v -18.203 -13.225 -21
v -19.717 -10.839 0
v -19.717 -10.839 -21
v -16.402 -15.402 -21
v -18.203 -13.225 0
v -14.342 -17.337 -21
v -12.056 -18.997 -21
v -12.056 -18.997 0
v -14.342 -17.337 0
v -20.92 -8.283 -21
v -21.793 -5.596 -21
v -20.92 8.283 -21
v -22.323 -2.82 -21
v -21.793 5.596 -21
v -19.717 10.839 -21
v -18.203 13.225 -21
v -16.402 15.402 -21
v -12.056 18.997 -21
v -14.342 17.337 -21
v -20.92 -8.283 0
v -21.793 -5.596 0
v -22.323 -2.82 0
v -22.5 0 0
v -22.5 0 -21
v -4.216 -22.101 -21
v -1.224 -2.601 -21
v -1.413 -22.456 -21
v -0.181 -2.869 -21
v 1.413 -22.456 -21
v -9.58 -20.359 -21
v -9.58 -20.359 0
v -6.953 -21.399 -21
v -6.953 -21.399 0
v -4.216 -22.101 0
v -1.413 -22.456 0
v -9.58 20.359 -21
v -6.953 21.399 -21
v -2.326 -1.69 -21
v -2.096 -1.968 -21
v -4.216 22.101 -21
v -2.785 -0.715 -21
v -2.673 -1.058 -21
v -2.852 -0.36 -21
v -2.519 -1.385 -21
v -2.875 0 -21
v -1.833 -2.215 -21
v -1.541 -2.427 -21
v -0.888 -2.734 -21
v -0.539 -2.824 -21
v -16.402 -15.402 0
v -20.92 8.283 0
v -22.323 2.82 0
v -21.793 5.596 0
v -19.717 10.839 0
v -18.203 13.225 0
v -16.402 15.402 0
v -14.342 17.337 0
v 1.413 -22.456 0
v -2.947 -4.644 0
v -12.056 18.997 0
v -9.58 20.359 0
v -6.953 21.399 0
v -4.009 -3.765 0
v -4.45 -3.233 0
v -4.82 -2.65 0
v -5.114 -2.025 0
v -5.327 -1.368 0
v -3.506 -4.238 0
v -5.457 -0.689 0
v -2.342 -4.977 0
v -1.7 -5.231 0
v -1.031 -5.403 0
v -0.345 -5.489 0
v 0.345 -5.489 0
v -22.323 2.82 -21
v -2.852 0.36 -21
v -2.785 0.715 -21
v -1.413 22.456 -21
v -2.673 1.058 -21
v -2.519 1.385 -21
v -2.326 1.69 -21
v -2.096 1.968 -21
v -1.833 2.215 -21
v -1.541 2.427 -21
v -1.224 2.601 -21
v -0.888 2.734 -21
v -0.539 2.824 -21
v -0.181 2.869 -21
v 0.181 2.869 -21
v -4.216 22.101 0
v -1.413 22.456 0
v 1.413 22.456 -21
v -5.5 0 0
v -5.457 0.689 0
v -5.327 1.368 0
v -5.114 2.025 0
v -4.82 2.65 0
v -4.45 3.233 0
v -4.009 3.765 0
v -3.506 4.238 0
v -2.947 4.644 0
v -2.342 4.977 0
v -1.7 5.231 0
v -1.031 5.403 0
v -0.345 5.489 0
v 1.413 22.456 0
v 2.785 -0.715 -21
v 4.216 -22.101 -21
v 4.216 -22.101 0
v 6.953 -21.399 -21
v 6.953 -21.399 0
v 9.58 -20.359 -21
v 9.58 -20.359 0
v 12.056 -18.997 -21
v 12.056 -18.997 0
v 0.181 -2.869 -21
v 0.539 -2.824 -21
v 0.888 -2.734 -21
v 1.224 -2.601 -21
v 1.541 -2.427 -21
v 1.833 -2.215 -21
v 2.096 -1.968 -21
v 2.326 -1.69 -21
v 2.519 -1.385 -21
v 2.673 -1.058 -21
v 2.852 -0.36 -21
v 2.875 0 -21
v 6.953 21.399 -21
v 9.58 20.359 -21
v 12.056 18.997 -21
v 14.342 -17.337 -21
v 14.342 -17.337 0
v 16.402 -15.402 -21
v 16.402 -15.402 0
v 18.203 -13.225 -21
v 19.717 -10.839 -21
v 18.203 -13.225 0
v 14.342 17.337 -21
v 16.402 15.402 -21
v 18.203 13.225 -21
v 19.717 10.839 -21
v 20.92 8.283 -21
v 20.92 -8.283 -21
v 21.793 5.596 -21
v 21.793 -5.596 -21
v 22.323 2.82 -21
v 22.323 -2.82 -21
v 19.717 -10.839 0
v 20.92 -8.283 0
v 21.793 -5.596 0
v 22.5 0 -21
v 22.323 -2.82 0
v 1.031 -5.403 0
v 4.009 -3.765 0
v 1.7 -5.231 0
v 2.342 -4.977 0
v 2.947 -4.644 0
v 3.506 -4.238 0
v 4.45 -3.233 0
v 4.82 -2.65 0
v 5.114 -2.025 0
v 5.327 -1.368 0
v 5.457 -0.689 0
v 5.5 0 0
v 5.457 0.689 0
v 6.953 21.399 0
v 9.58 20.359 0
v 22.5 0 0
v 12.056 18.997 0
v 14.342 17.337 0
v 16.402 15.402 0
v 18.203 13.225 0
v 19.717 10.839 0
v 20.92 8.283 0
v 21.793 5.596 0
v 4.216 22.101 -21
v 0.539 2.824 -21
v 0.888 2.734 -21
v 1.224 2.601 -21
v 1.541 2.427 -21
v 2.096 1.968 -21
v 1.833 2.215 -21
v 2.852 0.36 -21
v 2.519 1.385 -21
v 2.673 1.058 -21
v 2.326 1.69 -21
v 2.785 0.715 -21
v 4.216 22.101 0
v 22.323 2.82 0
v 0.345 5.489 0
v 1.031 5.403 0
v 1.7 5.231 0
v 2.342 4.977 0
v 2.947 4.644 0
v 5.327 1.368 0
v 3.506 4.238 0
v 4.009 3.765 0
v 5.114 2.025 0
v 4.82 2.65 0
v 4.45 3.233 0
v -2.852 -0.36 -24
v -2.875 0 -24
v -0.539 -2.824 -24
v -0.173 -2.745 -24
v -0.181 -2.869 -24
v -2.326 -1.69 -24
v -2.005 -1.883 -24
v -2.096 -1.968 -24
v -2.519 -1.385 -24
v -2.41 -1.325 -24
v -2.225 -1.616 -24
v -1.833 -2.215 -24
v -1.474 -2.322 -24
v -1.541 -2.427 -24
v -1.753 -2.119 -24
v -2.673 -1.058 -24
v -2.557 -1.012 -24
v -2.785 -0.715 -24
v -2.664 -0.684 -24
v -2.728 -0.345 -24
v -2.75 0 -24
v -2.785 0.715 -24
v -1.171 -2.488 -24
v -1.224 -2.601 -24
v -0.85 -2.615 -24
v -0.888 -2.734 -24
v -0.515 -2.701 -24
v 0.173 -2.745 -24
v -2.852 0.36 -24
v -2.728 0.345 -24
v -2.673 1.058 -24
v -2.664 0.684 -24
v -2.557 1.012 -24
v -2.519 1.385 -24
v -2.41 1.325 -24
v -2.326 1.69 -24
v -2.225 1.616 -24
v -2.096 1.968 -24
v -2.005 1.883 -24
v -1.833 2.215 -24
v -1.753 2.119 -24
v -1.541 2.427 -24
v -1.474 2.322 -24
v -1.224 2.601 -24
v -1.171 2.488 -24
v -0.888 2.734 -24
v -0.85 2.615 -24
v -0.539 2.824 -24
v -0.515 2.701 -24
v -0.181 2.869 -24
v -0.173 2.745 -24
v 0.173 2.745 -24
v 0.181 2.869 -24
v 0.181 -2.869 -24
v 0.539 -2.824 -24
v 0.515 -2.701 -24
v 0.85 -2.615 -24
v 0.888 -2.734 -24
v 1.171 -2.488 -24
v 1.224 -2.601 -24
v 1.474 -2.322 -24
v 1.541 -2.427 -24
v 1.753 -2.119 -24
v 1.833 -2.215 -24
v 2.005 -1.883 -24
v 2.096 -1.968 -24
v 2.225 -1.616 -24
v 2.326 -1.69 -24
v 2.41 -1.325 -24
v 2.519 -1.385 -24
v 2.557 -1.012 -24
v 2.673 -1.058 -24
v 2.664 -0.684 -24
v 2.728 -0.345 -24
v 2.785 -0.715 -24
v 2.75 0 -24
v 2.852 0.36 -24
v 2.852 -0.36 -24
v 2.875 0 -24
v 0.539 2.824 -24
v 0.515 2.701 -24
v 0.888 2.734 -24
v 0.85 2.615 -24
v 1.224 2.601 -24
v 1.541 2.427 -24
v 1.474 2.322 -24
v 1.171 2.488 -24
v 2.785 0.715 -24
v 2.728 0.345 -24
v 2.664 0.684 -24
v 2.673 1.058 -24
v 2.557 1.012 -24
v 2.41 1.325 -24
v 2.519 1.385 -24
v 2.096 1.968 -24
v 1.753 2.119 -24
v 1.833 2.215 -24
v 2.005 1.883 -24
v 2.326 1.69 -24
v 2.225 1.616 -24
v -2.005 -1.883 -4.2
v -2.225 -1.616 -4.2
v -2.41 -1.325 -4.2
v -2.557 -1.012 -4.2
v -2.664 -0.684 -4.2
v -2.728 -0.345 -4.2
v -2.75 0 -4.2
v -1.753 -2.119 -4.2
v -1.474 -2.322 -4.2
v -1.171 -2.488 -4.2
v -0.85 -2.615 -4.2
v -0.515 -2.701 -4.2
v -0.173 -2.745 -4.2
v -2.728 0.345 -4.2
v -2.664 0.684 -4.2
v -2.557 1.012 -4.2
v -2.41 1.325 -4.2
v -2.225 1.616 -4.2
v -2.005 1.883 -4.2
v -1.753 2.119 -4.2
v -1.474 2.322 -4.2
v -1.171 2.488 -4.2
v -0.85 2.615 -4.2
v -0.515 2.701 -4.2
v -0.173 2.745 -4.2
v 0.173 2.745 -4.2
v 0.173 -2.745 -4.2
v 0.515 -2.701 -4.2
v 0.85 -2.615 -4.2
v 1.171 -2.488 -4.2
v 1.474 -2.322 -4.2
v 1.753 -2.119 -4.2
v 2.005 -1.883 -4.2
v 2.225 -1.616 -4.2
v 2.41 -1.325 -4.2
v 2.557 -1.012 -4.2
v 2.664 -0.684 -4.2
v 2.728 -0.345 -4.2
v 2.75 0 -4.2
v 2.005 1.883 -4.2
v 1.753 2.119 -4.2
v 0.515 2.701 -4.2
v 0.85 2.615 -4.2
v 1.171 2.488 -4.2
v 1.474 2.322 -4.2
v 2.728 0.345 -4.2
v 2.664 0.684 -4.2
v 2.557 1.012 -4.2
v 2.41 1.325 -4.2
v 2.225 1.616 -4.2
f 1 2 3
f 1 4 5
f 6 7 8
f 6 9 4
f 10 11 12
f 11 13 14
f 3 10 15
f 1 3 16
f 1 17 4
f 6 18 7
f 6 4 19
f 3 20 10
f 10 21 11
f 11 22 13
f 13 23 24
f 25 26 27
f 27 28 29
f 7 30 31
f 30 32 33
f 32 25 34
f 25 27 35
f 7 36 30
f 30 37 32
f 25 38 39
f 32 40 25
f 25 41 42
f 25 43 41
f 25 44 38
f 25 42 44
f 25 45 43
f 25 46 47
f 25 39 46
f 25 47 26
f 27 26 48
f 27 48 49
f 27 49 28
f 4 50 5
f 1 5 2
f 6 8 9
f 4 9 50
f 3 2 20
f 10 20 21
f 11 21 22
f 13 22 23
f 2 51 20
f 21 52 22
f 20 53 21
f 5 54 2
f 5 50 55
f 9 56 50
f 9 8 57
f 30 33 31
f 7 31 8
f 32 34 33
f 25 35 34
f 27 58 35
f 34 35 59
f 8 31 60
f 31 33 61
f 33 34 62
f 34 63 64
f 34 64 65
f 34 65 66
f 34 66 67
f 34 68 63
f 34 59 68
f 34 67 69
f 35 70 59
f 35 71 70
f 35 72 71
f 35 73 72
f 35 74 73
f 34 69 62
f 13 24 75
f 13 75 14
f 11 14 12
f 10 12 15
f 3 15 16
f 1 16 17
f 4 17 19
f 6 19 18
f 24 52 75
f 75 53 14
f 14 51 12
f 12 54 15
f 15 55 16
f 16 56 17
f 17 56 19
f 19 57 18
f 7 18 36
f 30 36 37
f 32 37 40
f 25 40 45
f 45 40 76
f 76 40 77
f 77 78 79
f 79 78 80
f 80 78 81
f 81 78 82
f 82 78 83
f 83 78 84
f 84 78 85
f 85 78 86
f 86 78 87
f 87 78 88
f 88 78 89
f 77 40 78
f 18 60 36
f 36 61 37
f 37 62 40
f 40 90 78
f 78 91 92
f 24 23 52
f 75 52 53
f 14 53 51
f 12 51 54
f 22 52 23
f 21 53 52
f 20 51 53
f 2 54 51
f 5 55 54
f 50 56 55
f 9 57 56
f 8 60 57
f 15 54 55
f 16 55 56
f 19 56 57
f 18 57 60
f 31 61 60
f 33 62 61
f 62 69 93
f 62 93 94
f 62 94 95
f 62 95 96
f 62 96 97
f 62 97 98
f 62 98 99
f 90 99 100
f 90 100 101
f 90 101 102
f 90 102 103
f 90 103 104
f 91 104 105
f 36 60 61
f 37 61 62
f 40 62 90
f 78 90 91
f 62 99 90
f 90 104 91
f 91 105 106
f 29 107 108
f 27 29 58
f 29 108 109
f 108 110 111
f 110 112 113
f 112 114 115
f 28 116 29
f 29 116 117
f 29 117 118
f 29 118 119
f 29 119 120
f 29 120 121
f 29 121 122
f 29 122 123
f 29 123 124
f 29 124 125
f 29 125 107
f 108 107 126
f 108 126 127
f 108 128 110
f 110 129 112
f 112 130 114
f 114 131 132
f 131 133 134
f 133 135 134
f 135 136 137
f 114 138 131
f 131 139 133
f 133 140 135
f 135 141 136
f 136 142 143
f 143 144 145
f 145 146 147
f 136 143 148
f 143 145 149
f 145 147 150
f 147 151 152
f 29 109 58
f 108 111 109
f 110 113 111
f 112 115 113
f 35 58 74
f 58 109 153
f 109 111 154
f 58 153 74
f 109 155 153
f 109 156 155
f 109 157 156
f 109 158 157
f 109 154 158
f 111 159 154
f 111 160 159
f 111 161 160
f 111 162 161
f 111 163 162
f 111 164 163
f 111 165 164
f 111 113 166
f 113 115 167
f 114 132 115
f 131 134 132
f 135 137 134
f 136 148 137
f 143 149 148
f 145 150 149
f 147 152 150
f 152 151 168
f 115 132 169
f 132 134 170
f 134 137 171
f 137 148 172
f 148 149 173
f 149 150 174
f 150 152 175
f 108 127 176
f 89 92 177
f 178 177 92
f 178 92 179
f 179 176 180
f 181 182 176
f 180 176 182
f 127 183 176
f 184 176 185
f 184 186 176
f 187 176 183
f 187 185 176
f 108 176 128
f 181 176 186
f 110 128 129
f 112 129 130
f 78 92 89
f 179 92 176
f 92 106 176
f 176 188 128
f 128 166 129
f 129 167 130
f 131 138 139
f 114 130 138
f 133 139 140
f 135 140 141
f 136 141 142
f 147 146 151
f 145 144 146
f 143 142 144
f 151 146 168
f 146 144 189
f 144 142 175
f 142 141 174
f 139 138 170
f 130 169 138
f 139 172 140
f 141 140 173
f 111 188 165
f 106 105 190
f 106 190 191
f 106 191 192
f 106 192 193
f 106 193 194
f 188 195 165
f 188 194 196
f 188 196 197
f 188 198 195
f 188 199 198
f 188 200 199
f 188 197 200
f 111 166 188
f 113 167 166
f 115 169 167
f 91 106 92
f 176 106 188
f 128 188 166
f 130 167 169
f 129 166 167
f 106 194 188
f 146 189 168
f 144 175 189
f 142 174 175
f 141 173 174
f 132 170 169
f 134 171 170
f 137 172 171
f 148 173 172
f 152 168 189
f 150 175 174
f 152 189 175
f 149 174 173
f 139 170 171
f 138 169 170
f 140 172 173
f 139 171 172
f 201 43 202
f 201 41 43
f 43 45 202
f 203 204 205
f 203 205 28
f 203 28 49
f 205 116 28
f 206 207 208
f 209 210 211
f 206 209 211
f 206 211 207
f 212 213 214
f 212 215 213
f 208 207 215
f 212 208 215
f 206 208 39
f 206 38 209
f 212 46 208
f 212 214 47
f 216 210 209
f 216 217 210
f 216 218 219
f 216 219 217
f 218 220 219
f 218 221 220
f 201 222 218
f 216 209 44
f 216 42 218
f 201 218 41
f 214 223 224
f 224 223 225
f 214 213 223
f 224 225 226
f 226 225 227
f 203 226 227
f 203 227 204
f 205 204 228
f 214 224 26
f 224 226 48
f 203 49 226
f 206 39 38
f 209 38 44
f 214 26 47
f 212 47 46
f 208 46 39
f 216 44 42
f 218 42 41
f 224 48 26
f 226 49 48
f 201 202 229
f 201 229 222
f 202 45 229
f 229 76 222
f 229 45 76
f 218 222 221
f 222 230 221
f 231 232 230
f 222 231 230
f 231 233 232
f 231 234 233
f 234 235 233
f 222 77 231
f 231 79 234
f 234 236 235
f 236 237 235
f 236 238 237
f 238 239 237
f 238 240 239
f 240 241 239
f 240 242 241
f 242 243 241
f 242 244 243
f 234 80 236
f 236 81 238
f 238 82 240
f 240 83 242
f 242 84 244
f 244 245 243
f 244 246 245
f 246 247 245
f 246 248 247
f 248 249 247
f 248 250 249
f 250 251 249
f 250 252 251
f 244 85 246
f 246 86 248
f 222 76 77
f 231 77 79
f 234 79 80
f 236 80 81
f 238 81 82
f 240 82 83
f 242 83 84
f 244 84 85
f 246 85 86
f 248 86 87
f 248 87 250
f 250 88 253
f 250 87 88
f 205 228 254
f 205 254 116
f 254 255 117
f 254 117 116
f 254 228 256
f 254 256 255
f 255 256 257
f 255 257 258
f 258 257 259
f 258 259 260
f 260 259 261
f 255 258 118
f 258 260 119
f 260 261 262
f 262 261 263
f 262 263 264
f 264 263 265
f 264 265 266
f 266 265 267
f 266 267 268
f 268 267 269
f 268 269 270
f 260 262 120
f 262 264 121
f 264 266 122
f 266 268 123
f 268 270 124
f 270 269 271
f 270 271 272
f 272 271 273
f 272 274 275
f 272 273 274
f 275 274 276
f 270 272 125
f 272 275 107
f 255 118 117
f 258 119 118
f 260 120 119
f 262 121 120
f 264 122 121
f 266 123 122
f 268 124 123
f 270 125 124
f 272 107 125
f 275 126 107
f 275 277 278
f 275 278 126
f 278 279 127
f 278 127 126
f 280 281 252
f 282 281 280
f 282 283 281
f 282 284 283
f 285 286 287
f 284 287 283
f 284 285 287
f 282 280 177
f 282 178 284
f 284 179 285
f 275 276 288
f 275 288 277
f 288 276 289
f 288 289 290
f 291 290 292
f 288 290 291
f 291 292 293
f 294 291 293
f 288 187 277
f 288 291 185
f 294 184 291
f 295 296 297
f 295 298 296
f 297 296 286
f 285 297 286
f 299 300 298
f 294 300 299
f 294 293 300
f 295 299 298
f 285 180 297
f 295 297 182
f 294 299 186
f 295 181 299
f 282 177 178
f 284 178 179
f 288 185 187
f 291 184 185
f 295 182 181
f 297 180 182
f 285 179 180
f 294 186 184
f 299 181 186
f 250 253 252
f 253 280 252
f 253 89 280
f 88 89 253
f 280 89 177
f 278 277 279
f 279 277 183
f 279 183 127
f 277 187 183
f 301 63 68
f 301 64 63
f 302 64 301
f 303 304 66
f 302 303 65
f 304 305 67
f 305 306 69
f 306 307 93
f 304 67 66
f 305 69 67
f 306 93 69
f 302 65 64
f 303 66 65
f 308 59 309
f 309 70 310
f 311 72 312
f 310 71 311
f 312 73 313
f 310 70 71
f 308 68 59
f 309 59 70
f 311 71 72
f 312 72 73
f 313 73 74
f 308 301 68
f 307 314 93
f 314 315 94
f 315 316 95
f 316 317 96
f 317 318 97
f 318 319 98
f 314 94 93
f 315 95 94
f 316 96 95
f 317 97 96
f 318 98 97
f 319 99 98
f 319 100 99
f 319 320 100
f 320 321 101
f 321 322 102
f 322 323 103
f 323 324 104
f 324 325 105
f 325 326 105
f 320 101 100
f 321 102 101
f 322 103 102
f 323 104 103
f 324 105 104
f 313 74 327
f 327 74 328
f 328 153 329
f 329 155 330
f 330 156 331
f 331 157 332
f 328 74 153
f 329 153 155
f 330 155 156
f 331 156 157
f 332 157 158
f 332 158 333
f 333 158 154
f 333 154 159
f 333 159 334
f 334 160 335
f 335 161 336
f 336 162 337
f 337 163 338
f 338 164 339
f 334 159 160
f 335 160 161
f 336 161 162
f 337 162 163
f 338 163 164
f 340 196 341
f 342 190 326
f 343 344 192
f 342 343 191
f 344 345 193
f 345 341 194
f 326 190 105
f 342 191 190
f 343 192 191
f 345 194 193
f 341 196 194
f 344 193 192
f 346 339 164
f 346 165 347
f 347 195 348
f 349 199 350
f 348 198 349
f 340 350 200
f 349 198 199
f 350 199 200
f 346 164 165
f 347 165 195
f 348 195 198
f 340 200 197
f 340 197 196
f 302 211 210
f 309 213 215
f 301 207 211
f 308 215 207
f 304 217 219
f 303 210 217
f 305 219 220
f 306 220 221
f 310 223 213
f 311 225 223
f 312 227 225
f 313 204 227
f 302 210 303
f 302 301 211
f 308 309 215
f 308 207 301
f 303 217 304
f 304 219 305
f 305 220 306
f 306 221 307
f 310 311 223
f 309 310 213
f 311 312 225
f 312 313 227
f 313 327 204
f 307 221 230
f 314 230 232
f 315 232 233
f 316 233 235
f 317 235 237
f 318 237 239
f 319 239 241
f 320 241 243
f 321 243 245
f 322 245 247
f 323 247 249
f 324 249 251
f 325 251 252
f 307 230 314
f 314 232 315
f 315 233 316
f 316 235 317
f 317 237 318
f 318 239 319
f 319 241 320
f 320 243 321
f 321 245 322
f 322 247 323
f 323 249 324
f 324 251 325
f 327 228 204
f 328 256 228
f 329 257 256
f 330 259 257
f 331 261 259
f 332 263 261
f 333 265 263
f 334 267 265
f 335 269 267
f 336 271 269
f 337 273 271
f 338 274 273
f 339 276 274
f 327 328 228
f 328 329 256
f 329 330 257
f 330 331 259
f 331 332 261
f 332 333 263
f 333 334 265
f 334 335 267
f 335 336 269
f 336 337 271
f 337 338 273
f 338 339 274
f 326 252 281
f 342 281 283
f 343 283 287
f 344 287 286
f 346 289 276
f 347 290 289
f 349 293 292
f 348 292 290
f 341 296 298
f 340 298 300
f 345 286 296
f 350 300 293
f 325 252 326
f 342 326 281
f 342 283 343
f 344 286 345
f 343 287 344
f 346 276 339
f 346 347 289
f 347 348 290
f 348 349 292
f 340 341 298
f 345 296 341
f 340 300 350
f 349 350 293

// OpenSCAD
$fn = 50;


difference() {
	union() {
		translate(v = [0, 0, -21.0000000000]) {
			cylinder(h = 21, r = 22.5000000000);
		}
		#translate(v = [0, 0, -24.0000000000]) {
			cylinder(h = 24, r = 2.8750000000);
		}
	}
	union() {
		translate(v = [0, 0, 0]) {
			rotate(a = [0, 0, 0]) {
				difference() {
					union() {
						translate(v = [0, 0, -24.0000000000]) {
							cylinder(h = 24, r = 2.2500000000);
						}
						translate(v = [0, 0, -4.2000000000]) {
							cylinder(h = 4.2000000000, r1 = 2.7500000000, r2 = 5.5000000000);
						}
						translate(v = [0, 0, -24.0000000000]) {
							cylinder(h = 24, r = 2.7500000000);
						}
						translate(v = [0, 0, -24.0000000000]) {
							cylinder(h = 24, r = 2.2500000000);
						}
					}
					union();
				}
			}
		}
	}
}
